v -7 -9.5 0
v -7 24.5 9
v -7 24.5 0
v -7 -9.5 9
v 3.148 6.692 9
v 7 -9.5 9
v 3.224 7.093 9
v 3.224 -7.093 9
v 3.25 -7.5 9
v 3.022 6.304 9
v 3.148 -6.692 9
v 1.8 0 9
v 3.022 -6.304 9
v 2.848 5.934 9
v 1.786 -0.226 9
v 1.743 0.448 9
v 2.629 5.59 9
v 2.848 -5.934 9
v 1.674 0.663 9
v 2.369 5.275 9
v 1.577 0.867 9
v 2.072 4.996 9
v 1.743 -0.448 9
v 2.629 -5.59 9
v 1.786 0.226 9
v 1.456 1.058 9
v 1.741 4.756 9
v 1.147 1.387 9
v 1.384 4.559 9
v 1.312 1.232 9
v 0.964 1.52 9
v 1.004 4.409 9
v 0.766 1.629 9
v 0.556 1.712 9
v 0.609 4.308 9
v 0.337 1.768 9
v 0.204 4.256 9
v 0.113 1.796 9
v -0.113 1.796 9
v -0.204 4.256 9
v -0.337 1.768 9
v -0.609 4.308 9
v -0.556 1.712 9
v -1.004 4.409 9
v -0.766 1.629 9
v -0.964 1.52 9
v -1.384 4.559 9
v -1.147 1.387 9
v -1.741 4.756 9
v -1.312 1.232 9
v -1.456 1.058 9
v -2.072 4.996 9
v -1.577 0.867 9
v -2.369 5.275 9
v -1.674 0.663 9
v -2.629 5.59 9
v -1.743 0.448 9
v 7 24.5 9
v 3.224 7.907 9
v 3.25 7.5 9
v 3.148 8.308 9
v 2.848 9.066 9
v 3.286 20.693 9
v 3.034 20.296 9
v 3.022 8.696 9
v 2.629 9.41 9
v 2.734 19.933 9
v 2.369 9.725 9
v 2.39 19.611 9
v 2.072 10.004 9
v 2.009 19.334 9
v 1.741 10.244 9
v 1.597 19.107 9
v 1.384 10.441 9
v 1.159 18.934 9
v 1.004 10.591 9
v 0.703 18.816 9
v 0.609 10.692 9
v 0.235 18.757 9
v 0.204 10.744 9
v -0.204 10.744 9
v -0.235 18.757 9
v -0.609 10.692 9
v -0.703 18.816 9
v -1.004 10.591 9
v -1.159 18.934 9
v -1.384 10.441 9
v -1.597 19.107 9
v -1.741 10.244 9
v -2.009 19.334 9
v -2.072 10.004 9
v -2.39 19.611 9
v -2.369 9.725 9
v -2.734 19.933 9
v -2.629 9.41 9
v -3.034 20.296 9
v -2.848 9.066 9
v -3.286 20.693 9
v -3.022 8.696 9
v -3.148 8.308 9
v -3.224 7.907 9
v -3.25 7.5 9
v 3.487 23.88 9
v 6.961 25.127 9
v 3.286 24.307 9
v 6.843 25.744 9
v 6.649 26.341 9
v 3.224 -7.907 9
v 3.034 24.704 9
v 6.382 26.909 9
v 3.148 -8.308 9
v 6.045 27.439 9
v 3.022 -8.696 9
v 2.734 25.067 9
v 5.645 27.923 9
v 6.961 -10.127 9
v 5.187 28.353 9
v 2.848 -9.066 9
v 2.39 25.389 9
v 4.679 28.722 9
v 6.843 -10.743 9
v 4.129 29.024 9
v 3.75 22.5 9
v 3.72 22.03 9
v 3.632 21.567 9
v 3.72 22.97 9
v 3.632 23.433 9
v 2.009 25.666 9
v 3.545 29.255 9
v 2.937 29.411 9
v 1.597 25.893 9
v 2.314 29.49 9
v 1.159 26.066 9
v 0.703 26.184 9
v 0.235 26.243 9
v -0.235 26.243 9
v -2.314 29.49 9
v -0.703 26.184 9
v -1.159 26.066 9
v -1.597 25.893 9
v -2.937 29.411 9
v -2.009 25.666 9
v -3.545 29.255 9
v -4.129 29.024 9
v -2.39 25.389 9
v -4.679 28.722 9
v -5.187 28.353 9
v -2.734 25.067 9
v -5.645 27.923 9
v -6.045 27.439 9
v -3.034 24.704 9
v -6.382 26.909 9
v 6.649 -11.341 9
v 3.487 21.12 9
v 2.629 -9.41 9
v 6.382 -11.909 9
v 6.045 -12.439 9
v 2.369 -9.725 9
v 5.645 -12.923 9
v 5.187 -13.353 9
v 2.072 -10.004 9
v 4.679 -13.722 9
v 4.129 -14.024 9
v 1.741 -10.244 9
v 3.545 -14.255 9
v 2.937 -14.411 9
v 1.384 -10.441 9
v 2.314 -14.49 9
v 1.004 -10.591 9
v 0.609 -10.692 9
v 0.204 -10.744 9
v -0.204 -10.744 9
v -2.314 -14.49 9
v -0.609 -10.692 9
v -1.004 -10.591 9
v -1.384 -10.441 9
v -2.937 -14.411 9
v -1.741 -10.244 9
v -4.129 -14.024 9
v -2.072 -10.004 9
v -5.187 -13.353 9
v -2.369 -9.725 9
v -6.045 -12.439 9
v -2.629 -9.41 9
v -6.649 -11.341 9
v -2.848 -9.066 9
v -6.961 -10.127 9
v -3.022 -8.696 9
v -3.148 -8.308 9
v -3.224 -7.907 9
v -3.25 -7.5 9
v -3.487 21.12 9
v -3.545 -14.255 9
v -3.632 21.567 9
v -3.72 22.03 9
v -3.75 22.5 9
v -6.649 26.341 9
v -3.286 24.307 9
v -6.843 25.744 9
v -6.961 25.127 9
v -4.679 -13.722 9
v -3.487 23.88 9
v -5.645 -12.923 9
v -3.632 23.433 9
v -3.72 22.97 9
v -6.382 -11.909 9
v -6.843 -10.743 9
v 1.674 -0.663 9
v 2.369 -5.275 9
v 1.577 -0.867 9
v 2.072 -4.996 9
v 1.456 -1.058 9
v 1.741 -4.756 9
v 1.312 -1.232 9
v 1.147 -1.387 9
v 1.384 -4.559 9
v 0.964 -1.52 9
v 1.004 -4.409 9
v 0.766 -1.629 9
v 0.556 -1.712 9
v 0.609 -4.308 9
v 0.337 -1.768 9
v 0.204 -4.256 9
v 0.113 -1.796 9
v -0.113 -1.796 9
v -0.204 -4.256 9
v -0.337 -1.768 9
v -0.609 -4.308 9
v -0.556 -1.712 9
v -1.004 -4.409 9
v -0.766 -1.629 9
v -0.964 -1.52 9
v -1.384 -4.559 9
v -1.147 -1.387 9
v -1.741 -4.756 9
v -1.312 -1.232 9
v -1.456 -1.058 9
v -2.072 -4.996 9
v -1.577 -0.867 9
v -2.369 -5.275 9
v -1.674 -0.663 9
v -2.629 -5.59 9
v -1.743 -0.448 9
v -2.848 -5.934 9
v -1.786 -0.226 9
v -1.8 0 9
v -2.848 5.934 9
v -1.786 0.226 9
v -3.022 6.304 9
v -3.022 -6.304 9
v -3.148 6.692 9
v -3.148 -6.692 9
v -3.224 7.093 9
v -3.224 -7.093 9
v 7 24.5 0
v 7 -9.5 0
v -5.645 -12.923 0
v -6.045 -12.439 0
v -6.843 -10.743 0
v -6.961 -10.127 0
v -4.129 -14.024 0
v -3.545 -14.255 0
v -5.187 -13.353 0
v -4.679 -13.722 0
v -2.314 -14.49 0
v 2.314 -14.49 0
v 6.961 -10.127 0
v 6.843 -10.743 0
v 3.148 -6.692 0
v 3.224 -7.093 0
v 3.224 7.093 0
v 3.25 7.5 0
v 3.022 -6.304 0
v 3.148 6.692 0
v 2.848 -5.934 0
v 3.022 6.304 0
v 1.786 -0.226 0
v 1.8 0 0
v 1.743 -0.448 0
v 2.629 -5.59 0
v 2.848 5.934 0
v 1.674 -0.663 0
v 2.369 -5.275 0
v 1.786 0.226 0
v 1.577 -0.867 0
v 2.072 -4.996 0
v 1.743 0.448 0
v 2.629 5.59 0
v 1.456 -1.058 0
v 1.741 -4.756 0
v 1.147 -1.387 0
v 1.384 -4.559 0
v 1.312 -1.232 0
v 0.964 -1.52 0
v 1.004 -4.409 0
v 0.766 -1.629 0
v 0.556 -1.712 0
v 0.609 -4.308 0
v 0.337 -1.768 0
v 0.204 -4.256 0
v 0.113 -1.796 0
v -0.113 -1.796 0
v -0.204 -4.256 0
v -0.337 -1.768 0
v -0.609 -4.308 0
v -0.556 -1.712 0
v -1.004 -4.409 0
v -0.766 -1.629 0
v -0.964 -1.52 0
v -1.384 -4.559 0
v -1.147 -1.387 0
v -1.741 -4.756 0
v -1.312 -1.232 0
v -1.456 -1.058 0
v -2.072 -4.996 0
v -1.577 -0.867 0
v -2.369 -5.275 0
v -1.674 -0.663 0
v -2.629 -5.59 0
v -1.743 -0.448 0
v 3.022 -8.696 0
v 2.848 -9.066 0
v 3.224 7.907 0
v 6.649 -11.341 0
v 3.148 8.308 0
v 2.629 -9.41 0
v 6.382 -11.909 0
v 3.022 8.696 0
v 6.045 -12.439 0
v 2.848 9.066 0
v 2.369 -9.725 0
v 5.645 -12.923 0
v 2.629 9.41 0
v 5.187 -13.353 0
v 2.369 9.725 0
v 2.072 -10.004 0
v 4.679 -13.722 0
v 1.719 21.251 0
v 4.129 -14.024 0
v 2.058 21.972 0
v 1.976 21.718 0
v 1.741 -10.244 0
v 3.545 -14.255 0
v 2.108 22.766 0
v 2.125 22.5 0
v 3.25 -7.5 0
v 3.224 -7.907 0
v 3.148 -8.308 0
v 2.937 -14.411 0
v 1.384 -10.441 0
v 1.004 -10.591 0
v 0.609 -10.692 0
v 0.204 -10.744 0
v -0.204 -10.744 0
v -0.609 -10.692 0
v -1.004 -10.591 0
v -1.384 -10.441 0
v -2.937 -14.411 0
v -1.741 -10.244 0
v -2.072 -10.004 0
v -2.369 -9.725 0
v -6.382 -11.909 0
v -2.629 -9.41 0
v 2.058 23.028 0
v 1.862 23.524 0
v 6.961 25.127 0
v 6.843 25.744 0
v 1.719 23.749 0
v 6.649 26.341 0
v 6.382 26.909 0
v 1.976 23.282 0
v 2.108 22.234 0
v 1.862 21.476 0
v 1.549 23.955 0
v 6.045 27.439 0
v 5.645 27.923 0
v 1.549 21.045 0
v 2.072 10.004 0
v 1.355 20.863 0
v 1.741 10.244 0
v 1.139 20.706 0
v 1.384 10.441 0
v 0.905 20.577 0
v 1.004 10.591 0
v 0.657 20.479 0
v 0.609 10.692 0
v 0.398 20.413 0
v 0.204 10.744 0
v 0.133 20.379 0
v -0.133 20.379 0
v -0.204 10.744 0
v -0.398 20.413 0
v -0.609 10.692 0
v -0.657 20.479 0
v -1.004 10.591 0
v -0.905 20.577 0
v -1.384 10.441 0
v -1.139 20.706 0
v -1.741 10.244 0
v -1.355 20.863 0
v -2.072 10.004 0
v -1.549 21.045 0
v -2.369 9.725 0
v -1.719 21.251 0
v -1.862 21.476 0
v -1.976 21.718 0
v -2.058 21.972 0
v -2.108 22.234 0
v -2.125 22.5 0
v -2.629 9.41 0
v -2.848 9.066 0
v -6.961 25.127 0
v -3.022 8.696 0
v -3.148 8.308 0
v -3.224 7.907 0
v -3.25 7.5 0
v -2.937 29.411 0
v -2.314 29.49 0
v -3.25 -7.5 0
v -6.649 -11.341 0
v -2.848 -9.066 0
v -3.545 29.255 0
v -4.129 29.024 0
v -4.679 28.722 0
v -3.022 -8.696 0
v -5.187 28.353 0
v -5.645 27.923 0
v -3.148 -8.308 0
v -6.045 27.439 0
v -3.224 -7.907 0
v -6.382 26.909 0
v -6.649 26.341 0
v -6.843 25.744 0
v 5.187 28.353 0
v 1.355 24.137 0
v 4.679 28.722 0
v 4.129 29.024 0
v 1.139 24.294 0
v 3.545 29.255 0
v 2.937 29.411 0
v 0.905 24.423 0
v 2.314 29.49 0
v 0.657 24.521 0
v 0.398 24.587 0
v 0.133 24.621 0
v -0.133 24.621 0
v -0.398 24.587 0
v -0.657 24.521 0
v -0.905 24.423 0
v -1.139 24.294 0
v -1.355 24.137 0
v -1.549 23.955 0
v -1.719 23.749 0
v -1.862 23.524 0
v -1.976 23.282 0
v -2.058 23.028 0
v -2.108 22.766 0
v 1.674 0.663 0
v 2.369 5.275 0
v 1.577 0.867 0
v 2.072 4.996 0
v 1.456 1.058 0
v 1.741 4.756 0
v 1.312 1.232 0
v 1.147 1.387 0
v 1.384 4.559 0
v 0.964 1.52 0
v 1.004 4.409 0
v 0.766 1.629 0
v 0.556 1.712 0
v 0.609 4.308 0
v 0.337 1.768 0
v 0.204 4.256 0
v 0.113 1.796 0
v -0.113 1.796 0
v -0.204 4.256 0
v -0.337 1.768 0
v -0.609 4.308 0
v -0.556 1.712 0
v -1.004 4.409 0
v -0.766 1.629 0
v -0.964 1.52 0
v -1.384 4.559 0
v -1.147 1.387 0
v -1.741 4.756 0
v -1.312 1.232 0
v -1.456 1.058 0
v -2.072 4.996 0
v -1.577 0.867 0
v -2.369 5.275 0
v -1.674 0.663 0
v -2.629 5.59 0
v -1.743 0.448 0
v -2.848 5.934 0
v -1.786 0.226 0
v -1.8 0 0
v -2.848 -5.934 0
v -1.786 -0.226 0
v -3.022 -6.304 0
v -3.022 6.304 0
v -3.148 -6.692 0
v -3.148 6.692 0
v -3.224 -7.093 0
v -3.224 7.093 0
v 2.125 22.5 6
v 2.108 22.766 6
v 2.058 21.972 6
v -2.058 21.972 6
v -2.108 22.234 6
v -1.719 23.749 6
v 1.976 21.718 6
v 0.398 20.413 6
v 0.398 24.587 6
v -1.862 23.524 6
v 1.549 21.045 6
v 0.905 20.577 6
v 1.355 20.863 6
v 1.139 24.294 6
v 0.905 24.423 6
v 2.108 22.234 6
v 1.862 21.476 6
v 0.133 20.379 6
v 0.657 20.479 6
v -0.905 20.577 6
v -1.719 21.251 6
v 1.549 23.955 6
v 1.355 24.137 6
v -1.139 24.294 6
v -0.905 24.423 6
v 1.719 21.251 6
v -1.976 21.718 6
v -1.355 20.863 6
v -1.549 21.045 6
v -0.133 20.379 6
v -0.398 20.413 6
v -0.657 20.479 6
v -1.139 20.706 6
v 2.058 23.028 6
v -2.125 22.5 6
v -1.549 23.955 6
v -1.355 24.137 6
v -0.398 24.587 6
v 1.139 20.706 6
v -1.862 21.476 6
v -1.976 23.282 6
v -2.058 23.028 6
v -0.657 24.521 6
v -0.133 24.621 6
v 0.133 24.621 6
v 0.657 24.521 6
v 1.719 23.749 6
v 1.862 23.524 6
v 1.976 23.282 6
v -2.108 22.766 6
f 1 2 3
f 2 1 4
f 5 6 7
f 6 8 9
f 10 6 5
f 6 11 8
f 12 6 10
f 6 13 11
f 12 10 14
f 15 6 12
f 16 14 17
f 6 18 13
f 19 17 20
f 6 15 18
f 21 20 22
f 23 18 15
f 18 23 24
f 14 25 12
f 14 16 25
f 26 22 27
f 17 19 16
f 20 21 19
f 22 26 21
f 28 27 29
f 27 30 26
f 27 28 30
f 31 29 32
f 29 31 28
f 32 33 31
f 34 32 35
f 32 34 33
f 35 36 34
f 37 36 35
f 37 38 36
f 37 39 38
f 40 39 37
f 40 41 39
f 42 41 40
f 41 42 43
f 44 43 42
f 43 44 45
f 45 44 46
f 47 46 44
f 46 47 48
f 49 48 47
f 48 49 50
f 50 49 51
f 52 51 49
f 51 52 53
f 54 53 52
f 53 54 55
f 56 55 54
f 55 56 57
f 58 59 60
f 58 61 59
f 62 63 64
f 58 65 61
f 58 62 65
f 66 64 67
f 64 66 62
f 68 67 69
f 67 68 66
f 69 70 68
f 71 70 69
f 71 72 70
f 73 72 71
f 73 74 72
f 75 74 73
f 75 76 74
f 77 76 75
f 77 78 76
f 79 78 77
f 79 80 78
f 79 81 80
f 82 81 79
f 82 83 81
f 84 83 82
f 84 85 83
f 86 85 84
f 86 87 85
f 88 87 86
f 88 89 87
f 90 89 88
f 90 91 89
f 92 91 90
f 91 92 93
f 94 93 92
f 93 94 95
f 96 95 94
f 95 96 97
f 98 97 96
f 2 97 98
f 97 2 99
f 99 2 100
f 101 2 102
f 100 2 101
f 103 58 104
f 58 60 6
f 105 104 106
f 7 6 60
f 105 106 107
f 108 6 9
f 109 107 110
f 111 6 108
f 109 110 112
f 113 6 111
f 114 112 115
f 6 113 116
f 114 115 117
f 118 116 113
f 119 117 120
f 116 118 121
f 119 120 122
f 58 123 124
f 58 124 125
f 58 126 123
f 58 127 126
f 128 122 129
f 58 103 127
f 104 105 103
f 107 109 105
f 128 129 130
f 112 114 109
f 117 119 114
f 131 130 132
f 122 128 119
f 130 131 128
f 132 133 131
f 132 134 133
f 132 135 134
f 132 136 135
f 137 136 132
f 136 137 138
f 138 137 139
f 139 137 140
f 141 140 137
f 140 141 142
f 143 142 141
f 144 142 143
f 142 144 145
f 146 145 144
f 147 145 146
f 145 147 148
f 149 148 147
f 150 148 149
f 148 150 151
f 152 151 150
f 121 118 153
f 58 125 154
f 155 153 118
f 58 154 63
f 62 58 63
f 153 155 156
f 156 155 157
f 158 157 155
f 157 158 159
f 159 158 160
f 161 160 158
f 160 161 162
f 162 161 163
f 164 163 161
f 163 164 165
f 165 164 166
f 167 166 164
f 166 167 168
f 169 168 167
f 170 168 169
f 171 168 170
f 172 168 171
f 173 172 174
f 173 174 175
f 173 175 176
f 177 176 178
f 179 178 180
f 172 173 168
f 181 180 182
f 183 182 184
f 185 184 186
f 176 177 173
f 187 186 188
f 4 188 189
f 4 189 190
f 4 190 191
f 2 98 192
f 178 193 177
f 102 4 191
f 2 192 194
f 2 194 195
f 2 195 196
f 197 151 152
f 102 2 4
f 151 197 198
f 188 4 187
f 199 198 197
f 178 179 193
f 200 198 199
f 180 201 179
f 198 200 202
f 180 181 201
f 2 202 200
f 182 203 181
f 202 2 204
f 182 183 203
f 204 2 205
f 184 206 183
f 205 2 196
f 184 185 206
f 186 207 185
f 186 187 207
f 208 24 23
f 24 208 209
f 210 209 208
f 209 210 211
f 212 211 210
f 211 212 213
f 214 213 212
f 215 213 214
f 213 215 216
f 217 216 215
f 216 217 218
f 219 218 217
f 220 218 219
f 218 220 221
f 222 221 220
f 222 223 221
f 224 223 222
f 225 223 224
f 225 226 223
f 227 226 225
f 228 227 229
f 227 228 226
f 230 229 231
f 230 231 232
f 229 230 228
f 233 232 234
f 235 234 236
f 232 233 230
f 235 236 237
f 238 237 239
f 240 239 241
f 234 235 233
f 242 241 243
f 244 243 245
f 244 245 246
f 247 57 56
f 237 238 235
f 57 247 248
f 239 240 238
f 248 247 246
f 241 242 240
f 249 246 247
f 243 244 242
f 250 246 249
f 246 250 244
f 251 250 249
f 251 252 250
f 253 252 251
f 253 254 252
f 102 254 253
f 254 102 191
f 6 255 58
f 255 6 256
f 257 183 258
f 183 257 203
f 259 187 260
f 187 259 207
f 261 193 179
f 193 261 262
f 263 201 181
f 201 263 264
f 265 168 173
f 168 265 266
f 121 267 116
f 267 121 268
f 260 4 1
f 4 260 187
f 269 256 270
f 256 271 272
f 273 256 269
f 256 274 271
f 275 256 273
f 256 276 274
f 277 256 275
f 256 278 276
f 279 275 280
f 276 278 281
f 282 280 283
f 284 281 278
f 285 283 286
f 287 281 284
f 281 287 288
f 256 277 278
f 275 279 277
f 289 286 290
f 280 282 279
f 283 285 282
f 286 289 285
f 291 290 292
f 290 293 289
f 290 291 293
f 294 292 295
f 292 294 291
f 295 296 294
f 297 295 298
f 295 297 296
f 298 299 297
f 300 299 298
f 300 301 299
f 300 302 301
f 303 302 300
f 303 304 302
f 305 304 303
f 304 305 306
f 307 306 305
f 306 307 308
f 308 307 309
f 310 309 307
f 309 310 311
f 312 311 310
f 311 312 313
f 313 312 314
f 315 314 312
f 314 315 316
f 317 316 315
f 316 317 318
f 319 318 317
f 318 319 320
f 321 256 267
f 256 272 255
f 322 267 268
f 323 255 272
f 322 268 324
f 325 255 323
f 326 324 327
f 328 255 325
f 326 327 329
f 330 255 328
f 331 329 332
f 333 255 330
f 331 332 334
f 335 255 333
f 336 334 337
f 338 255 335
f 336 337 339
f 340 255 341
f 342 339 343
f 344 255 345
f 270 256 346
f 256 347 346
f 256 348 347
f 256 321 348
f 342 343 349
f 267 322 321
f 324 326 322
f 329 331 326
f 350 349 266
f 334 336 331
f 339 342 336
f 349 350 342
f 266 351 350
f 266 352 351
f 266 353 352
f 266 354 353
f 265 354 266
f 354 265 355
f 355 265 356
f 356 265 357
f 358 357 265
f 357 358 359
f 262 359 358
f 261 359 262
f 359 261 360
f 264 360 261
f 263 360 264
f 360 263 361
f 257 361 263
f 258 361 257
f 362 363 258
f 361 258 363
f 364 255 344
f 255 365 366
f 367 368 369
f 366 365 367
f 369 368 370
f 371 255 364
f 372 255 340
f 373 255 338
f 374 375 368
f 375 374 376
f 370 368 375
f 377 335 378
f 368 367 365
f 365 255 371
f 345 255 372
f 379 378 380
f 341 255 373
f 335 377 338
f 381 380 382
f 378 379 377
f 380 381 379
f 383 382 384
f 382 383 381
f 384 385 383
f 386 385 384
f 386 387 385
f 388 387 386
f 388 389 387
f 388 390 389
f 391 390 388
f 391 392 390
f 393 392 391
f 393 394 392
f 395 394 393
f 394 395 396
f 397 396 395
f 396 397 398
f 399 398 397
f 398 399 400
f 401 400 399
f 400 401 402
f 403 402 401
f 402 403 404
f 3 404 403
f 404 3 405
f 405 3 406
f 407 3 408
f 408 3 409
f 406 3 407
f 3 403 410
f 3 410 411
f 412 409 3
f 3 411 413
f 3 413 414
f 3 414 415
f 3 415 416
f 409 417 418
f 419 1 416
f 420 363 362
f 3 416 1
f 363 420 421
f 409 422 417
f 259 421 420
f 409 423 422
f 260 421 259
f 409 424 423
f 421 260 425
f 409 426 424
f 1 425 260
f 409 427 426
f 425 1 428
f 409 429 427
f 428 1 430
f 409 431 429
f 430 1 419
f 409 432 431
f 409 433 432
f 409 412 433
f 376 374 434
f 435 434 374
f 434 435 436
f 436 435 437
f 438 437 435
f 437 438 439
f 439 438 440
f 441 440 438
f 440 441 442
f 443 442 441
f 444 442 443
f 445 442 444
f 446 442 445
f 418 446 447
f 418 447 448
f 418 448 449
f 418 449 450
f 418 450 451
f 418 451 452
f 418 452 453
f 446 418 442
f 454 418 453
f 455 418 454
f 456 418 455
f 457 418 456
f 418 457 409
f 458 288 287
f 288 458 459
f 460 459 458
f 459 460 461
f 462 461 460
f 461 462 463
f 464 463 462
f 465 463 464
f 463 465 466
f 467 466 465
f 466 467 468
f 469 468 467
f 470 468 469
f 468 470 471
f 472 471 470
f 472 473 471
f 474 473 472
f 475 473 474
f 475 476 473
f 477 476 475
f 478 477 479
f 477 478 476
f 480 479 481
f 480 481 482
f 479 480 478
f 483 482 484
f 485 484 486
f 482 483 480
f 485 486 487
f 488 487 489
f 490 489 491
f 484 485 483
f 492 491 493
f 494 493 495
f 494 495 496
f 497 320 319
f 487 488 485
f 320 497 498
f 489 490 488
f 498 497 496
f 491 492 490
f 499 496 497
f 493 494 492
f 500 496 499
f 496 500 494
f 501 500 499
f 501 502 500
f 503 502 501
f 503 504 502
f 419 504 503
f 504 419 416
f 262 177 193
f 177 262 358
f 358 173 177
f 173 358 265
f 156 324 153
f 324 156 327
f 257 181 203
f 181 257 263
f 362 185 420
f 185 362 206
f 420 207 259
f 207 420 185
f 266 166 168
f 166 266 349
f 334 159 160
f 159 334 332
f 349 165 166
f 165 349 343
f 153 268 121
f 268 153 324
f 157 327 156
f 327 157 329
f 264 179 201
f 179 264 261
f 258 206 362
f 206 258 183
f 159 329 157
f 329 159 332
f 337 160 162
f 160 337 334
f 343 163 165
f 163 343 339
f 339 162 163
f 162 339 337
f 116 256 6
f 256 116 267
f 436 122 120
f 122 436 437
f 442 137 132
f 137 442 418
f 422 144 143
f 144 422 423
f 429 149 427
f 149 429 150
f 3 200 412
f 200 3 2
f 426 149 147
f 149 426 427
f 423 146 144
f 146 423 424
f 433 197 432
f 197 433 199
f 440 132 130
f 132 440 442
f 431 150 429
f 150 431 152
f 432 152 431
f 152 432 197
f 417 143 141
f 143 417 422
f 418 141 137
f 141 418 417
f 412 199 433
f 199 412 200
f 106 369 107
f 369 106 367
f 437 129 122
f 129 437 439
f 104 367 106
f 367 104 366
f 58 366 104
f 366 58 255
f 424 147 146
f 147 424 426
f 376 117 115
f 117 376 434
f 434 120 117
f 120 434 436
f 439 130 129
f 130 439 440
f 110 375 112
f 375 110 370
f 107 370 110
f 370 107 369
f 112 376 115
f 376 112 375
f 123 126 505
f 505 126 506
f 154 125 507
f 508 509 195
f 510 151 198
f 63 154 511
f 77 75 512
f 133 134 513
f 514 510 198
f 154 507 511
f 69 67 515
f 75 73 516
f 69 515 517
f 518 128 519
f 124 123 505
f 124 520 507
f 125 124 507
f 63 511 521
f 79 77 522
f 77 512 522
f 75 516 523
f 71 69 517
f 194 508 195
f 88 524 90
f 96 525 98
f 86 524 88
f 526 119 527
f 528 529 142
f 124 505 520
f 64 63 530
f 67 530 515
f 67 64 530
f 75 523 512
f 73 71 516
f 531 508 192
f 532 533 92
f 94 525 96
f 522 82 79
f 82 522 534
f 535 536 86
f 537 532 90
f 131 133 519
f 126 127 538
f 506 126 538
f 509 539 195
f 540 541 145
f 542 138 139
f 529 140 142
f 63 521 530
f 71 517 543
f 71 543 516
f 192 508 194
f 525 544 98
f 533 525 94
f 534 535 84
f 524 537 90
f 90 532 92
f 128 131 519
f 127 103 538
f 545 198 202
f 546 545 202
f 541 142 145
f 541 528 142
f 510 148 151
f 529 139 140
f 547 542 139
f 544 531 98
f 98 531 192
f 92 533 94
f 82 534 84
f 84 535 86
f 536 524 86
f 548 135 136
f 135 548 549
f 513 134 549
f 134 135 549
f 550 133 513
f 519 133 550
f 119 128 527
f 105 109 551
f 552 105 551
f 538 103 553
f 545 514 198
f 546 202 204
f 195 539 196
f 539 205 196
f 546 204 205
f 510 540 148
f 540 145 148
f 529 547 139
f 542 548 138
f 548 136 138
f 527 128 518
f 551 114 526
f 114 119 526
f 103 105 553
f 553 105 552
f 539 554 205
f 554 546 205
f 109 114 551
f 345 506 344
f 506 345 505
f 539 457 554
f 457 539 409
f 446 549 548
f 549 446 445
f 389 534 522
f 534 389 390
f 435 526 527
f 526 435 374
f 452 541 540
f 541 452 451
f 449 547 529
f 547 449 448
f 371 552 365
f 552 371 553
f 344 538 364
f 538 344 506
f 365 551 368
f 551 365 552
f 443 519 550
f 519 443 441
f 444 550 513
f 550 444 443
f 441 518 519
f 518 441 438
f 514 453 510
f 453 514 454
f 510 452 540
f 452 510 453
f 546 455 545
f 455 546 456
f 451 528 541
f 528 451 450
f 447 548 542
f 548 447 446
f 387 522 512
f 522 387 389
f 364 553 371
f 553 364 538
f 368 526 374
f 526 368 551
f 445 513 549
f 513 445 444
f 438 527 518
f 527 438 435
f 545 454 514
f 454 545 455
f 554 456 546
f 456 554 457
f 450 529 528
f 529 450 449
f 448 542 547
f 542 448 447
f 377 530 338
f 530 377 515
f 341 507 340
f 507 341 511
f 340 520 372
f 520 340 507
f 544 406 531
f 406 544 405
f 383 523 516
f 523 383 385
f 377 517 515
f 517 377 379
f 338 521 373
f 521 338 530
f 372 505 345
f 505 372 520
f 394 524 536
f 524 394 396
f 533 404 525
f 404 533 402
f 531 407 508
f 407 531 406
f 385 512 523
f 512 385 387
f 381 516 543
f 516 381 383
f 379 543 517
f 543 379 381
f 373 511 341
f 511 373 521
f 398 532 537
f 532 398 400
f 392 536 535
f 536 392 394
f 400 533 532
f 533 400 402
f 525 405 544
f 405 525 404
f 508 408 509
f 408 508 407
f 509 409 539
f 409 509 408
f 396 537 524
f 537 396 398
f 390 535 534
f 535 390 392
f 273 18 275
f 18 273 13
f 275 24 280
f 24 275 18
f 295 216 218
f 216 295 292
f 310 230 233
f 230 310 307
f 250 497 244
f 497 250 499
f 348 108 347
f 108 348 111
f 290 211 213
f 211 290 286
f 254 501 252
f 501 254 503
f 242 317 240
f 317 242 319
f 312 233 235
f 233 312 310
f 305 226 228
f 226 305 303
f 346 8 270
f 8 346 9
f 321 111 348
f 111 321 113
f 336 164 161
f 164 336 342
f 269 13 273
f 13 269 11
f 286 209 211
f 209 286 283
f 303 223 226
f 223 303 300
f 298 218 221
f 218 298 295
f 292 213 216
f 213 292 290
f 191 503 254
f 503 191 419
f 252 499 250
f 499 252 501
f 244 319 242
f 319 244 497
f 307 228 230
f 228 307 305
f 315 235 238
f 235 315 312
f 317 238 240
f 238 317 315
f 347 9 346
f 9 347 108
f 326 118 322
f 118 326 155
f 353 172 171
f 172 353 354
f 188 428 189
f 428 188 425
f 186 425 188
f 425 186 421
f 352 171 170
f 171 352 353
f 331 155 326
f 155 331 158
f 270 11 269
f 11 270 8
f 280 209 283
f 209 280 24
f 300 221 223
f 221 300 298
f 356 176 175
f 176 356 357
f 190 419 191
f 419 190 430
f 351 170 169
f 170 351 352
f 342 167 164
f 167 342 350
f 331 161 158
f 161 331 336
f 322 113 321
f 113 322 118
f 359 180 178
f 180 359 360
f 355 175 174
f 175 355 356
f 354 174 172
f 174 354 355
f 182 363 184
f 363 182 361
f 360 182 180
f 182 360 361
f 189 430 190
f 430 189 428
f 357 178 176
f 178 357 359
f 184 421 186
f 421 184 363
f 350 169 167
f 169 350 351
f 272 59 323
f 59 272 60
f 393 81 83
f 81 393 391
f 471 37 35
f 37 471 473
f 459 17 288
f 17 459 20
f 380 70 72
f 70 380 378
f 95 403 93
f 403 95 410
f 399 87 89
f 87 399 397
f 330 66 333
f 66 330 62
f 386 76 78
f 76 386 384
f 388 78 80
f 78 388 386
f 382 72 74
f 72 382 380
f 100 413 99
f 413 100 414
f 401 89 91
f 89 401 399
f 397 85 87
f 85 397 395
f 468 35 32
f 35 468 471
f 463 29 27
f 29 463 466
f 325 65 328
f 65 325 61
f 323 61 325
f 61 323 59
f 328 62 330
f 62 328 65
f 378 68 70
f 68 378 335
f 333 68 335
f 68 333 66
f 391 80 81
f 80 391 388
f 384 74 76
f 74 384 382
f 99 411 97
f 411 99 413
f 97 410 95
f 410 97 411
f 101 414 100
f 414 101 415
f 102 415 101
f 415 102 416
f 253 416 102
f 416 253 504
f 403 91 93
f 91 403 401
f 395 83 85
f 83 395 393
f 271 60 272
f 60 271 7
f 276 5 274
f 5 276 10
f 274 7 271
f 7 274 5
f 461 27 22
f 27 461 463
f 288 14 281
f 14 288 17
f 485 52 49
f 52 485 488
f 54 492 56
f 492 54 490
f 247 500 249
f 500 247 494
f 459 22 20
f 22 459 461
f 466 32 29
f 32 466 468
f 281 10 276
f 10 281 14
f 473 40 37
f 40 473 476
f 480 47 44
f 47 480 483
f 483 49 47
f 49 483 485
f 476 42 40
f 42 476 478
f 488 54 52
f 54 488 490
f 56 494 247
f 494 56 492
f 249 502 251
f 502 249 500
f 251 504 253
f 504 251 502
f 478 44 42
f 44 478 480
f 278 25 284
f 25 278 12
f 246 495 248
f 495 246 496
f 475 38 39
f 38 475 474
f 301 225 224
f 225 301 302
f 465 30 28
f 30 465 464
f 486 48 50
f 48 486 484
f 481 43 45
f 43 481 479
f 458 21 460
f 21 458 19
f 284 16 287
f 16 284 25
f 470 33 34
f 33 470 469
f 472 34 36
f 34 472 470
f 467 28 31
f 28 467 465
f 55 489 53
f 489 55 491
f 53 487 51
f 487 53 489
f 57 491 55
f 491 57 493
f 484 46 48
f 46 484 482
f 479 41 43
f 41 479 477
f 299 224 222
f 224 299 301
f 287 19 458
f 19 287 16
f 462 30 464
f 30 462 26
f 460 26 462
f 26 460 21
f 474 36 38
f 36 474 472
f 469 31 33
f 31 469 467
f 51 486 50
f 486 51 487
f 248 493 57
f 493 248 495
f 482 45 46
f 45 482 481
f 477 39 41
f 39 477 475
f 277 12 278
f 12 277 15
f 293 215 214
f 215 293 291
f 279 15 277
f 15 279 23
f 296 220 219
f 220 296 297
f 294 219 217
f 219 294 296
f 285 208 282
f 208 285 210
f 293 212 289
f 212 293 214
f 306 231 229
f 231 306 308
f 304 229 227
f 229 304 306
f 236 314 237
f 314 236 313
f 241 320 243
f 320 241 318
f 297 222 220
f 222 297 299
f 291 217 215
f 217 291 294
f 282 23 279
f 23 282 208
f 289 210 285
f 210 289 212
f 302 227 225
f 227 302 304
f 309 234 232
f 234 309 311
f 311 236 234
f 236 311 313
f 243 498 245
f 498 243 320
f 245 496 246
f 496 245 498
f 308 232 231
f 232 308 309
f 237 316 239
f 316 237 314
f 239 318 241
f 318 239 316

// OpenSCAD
$fn = 50;


difference() {
	union() {
		hull() {
			translate(v = [-2.0000000000, 9.5000000000, 0]) {
				cylinder(h = 9, r = 5);
			}
			translate(v = [2.0000000000, 9.5000000000, 0]) {
				cylinder(h = 9, r = 5);
			}
			translate(v = [-2.0000000000, -9.5000000000, 0]) {
				cylinder(h = 9, r = 5);
			}
			translate(v = [2.0000000000, -9.5000000000, 0]) {
				cylinder(h = 9, r = 5);
			}
		}
		translate(v = [0.0000000000, 15.0000000000, 0]) {
			hull() {
				translate(v = [-2.0000000000, 9.5000000000, 0]) {
					cylinder(h = 9, r = 5);
				}
				translate(v = [2.0000000000, 9.5000000000, 0]) {
					cylinder(h = 9, r = 5);
				}
				translate(v = [-2.0000000000, -9.5000000000, 0]) {
					cylinder(h = 9, r = 5);
				}
				translate(v = [2.0000000000, -9.5000000000, 0]) {
					cylinder(h = 9, r = 5);
				}
			}
		}
		translate(v = [0.0000000000, 15.0000000000, 0]) {
			hull() {
				translate(v = [-2.0000000000, 9.5000000000, 0]) {
					cylinder(h = 9, r = 5);
				}
				translate(v = [2.0000000000, 9.5000000000, 0]) {
					cylinder(h = 9, r = 5);
				}
				translate(v = [-2.0000000000, -9.5000000000, 0]) {
					cylinder(h = 9, r = 5);
				}
				translate(v = [2.0000000000, -9.5000000000, 0]) {
					cylinder(h = 9, r = 5);
				}
			}
		}
	}
	union() {
		translate(v = [0.0000000000, 22.5000000000, 9]) {
			rotate(a = [0, 0, 0]) {
				difference() {
					union() {
						#translate(v = [0, 0, -9.0000000000]) {
							cylinder(h = 9, r = 2.0000000000);
						}
						#translate(v = [0, 0, -3]) {
							cylinder(h = 3, r1 = 2.1250000000, r2 = 3.7500000000);
						}
						#translate(v = [0, 0, -9.0000000000]) {
							cylinder(h = 9, r = 2.1250000000);
						}
						#translate(v = [0, 0, -9.0000000000]) {
							cylinder(h = 9, r = 2.0000000000);
						}
					}
					union();
				}
			}
		}
		translate(v = [0.0000000000, 22.5000000000, 9]) {
			rotate(a = [0, 0, 0]) {
				difference() {
					union() {
						#translate(v = [0, 0, -9.0000000000]) {
							cylinder(h = 9, r = 2.0000000000);
						}
						#translate(v = [0, 0, -3]) {
							cylinder(h = 3, r1 = 2.1250000000, r2 = 3.7500000000);
						}
						#translate(v = [0, 0, -9.0000000000]) {
							cylinder(h = 9, r = 2.1250000000);
						}
						#translate(v = [0, 0, -9.0000000000]) {
							cylinder(h = 9, r = 2.0000000000);
						}
					}
					union();
				}
			}
		}
		translate(v = [0.0000000000, -7.5000000000, 0]) {
			translate(v = [0, 0, -100]) {
				cylinder(h = 200, r = 3.2500000000);
			}
		}
		translate(v = [0.0000000000, 7.5000000000, 0]) {
			translate(v = [0, 0, -100]) {
				cylinder(h = 200, r = 3.2500000000);
			}
		}
		translate(v = [0.0000000000, -7.5000000000, 0]) {
			translate(v = [0, 0, -100]) {
				cylinder(h = 200, r = 1.8000000000);
			}
		}
		translate(v = [0, 0, -100]) {
			cylinder(h = 200, r = 1.8000000000);
		}
		translate(v = [0.0000000000, 7.5000000000, 0]) {
			translate(v = [0, 0, -100]) {
				cylinder(h = 200, r = 1.8000000000);
			}
		}
	}
}
